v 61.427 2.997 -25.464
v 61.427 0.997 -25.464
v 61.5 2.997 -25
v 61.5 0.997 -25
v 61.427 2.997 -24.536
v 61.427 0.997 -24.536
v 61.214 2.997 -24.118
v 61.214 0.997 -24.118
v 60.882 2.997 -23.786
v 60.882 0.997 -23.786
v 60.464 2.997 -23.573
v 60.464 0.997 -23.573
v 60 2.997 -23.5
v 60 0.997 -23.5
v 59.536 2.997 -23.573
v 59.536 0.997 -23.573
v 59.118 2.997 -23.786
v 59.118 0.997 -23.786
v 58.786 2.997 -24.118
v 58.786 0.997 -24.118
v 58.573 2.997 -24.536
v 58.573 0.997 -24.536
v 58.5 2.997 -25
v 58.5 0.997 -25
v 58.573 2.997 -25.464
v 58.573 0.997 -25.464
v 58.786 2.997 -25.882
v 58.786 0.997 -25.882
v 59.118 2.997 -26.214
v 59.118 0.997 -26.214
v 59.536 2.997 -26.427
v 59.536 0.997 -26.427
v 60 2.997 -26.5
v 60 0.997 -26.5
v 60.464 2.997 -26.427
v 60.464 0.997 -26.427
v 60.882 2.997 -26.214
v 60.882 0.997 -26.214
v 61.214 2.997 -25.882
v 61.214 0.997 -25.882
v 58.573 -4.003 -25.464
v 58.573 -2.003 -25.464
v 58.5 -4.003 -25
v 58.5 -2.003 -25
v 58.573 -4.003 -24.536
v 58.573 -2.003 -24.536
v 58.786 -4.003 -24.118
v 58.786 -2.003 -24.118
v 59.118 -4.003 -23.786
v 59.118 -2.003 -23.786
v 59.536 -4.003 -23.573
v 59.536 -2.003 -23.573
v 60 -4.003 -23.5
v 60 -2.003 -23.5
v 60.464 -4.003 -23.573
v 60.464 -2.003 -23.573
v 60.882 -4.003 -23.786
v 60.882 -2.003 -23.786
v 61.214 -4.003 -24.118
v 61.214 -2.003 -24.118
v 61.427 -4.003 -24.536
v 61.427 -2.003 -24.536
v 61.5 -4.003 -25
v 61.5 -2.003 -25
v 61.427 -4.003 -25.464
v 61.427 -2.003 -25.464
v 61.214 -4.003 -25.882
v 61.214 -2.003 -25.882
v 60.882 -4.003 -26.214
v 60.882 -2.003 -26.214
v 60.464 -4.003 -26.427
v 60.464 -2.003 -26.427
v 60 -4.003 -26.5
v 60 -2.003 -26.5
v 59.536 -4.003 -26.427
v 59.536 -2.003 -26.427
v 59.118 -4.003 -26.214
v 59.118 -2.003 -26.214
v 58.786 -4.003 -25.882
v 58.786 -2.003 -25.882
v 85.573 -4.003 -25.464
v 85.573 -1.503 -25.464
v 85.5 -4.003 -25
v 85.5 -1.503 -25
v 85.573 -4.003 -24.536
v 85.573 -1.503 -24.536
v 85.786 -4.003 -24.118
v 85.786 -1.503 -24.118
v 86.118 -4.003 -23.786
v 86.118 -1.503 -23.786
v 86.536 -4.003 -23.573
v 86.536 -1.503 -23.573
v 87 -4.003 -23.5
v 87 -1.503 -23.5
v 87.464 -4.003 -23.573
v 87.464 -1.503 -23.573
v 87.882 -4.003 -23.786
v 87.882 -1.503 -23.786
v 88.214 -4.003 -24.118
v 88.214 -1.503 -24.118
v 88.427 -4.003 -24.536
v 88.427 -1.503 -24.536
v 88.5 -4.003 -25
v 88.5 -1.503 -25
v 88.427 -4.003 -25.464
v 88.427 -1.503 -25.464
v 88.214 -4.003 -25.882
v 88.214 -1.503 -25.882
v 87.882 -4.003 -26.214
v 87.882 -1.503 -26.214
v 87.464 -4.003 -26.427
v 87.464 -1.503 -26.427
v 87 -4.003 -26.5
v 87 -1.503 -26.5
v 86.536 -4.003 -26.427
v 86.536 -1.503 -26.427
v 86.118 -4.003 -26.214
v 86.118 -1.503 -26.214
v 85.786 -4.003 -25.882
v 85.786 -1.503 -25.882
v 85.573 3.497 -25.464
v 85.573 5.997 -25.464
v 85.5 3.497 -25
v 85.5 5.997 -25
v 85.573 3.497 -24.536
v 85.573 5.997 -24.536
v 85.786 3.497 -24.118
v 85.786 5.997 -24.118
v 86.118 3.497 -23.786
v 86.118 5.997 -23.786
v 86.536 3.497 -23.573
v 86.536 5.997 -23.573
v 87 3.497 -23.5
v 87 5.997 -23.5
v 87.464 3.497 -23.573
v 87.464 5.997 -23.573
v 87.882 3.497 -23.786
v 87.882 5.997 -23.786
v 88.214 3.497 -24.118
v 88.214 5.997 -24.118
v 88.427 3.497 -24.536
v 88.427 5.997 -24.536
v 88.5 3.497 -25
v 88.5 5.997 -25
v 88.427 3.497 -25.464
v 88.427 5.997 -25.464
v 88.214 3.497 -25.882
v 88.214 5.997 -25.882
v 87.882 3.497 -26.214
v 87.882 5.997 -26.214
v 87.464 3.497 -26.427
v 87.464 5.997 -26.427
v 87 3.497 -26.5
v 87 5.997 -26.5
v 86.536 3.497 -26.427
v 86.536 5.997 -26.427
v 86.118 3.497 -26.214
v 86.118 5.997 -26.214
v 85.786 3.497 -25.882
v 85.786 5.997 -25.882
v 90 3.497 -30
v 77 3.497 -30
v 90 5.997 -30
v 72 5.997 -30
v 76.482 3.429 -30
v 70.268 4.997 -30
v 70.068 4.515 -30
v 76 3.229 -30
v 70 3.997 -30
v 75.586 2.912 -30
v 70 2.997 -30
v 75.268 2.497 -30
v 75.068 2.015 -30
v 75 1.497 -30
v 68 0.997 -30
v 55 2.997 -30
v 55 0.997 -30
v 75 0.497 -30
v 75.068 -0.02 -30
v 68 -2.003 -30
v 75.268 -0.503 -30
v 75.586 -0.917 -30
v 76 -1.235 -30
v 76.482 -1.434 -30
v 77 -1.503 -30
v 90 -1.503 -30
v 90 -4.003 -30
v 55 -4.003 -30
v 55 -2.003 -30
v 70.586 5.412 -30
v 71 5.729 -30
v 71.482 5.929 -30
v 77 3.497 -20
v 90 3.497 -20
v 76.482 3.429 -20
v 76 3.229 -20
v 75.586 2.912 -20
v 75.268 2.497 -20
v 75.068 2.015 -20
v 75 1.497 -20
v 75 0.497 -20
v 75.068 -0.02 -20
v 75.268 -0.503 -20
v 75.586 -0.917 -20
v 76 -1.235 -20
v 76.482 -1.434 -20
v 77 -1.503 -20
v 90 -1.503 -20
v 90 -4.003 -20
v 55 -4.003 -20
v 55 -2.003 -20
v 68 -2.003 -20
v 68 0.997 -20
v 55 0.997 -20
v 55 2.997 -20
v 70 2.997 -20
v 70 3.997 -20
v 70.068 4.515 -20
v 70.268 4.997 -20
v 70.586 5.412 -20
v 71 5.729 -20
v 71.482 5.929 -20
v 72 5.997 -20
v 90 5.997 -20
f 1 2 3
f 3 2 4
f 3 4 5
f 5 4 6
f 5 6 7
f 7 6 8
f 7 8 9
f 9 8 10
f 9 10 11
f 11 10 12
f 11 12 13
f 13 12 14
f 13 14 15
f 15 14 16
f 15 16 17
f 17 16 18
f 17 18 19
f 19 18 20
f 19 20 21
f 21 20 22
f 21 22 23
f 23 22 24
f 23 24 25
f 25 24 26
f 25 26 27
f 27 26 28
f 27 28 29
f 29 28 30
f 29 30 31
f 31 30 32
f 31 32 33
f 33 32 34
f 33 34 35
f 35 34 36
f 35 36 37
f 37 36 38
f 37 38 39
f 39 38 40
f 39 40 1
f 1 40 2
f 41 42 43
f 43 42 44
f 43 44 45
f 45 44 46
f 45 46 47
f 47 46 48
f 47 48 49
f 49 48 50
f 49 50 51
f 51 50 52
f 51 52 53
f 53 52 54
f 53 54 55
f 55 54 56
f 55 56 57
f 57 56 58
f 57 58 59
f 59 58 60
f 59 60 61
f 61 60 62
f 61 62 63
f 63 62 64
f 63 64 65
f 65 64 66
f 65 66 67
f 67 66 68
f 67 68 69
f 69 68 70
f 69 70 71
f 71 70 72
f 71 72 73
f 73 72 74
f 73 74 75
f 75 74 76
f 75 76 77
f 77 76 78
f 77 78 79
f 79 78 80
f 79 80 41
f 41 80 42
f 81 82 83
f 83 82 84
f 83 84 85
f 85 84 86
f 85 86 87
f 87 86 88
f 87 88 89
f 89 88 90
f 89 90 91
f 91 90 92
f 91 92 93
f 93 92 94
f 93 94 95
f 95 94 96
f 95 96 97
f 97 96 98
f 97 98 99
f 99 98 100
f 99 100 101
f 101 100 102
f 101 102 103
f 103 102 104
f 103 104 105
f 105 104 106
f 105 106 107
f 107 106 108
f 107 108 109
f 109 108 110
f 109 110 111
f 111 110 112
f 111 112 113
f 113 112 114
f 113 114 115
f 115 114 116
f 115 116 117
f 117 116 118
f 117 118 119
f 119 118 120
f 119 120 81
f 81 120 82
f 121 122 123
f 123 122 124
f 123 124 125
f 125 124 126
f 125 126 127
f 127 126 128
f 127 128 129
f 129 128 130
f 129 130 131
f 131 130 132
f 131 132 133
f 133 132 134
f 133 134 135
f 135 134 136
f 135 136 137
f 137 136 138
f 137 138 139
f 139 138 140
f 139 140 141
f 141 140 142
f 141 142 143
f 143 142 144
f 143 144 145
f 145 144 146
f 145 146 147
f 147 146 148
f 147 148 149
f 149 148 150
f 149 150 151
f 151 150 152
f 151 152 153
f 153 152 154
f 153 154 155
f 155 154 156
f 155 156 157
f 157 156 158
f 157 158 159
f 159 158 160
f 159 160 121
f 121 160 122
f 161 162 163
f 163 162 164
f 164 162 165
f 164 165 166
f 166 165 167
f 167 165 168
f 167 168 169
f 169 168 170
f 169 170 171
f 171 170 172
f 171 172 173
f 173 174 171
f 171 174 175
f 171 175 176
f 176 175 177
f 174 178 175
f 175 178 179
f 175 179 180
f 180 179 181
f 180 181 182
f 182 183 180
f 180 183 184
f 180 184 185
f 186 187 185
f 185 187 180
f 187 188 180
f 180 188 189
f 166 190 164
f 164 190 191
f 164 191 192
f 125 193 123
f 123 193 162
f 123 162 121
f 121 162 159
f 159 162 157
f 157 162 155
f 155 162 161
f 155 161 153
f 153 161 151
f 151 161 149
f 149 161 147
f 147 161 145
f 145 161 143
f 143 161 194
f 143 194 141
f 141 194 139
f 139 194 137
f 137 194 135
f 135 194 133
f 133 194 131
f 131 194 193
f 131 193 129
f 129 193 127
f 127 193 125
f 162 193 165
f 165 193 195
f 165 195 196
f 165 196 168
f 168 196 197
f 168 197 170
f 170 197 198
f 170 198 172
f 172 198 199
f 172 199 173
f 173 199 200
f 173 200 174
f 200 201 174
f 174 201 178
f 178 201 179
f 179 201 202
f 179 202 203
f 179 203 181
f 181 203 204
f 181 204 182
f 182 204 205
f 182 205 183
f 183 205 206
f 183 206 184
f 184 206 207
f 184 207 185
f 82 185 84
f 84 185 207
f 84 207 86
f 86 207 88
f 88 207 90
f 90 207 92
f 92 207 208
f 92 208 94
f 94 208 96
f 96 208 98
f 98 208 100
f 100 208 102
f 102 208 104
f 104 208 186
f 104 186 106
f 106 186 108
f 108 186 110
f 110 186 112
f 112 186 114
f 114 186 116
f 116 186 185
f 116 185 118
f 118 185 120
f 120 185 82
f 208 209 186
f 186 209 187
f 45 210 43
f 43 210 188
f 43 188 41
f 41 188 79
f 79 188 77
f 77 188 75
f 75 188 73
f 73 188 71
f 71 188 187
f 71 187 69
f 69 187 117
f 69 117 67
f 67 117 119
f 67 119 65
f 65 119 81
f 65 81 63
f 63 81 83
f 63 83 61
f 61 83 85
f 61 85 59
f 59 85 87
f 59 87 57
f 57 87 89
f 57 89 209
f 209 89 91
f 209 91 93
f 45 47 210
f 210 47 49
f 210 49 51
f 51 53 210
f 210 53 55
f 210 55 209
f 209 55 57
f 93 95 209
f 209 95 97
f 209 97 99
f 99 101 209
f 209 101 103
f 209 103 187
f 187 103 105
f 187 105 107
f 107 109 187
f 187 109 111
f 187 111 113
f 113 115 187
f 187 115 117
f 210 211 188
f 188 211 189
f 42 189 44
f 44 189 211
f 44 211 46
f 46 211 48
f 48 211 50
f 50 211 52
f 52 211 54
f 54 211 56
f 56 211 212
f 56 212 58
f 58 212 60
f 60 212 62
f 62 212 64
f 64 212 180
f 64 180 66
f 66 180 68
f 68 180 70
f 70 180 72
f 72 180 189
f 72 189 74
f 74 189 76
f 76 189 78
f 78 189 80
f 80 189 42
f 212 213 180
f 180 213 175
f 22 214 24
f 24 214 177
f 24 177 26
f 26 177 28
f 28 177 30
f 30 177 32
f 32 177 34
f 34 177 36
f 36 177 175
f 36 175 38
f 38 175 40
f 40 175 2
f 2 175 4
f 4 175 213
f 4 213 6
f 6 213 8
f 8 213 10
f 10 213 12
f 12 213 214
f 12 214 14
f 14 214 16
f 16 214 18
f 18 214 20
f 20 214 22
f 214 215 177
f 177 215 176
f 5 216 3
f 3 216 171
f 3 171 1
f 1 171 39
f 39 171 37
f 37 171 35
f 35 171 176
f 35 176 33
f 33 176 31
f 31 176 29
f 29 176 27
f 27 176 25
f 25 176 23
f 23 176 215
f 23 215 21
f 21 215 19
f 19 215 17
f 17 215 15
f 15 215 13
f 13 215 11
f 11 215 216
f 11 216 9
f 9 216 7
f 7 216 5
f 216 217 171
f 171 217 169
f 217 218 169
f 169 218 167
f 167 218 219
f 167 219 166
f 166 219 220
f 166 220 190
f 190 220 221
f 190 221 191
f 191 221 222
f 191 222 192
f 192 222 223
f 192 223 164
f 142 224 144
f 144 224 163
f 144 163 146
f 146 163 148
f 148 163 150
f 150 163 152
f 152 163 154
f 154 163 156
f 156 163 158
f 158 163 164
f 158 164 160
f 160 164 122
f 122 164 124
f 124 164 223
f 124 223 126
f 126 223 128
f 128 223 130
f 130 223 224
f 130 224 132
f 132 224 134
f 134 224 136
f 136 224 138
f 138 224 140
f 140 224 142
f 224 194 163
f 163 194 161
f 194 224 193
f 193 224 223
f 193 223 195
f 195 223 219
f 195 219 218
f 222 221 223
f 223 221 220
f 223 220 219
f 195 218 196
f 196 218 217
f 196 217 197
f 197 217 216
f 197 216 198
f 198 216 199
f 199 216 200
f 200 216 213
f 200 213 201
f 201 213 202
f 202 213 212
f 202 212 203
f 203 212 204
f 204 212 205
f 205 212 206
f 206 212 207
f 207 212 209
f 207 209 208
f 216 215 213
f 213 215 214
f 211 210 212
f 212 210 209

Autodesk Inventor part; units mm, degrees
ref_plane "YZ Plane" through (0, 0, 0) normal (1, 0, 0) x (0, 1, 0)
ref_plane "Work Plane1" through (0, 0, -25) normal (0, 0, 1) x (1, 0, 0)
sketch "Sketch4" plane through (0, 0, -25) normal (0, 0, 1) x (1, 0, 0)
  line L0 (70, -4.0026) -> (70, 3.9974)
  line L1 (72, 5.9974) -> (90, 5.9974)
  line L2 (90, 5.9974) -> (90, 3.4974)
  line L3 (90, 3.4974) -> (77, 3.4974)
  line L4 (75, 1.4974) -> (75, 0.4974)
  line L5 (77, -1.5026) -> (90, -1.5026)
  line L6 (90, -1.5026) -> (90, -4.0026)
  line L7 (90, -4.0026) -> (70, -4.0026)
  arc A0 (72, 5.9974) -> (70, 3.9974) centre (72, 3.9974) ccw
  arc A1 (77, 3.4974) -> (75, 1.4974) centre (77, 1.4974) ccw
  arc A2 (75, 0.4974) -> (77, -1.5026) centre (77, 0.4974) ccw
  line L8 (70, 0) -> (70, -3) projected
  line L9 (55, -4.0026) -> (55, -2.0026)
  line L10 (55, -2.0026) -> (68, -2.0026)
  line L11 (68, -2.0026) -> (68, 0.9974)
  line L12 (68, 0.9974) -> (55, 0.9974)
  line L13 (55, -4.0026) -> (70, -4.0026)
  line L14 (55, 0.9974) -> (55, 2.9974)
  line L15 (55, 2.9974) -> (70, 2.9974)
  point P0 (0, 0)
  dimension "d66" = 5
  dimension "d67" = 2.5
  dimension "d68" = 2.5
  dimension "d69" = 20
  dimension "d70" = 15
  dimension "d71" = 2
  dimension "d111" = 2
  dimension "d112" = 2
  dimension "d113" = 3
  dimension "d115" = 2
  dimension "d116" = 15
  dimension "d117" = 15
ref_plane "Work Plane5" through (72, 5.9974, -20) normal (0, 1, 0) x (1, 0, 0)
sketch "Sketch5" plane through (72, 5.9974, -20) normal (0, 1, 0) x (1, 0, 0)
  line L0 (18, 10) -> (18, 0) projected
  line L1 (0, 10) -> (18, 10) projected
  point P0 (-72, -20)
  point P1 (15, 5)
  dimension "d86" = 3
  dimension "d87" = 5
hole "Hole1" [suppressed]
extrude "Extrusion5" add sketch "Sketch4" along normal mid plane 10
hole "Hole2" at (87, 5.9974, -25) direction (0, -1, 0) diameter 3 end through all
sketch "Sketch8" plane through (55, 2.9974, -20) normal (0, 1, 0) x (1, 0, 0)
  line L0 (0, 10) -> (15, 10) projected
  line L1 (0, 10) -> (0, 0) projected
  point P0 (-55, -20)
  point P1 (5, 5)
  dimension "d127" = 5
  dimension "d128" = 5
hole "Hole3" at (60, 2.9974, -25) direction (0, -1, 0) diameter 3 end through all
thread "Thread1" size "M3x0.5" class "6H" standard "ANSI Metric M Profile" full length
thread "Thread2" size "M3x0.5" class "6H" standard "ANSI Metric M Profile" full length
thread "Thread3" size "M3x0.5" class "6H" standard "ANSI Metric M Profile" full length
thread "Thread4" size "M3x0.5" class "6H" standard "ANSI Metric M Profile" full length
properties part number "base_plate" material "PC/ABS Plastic"
